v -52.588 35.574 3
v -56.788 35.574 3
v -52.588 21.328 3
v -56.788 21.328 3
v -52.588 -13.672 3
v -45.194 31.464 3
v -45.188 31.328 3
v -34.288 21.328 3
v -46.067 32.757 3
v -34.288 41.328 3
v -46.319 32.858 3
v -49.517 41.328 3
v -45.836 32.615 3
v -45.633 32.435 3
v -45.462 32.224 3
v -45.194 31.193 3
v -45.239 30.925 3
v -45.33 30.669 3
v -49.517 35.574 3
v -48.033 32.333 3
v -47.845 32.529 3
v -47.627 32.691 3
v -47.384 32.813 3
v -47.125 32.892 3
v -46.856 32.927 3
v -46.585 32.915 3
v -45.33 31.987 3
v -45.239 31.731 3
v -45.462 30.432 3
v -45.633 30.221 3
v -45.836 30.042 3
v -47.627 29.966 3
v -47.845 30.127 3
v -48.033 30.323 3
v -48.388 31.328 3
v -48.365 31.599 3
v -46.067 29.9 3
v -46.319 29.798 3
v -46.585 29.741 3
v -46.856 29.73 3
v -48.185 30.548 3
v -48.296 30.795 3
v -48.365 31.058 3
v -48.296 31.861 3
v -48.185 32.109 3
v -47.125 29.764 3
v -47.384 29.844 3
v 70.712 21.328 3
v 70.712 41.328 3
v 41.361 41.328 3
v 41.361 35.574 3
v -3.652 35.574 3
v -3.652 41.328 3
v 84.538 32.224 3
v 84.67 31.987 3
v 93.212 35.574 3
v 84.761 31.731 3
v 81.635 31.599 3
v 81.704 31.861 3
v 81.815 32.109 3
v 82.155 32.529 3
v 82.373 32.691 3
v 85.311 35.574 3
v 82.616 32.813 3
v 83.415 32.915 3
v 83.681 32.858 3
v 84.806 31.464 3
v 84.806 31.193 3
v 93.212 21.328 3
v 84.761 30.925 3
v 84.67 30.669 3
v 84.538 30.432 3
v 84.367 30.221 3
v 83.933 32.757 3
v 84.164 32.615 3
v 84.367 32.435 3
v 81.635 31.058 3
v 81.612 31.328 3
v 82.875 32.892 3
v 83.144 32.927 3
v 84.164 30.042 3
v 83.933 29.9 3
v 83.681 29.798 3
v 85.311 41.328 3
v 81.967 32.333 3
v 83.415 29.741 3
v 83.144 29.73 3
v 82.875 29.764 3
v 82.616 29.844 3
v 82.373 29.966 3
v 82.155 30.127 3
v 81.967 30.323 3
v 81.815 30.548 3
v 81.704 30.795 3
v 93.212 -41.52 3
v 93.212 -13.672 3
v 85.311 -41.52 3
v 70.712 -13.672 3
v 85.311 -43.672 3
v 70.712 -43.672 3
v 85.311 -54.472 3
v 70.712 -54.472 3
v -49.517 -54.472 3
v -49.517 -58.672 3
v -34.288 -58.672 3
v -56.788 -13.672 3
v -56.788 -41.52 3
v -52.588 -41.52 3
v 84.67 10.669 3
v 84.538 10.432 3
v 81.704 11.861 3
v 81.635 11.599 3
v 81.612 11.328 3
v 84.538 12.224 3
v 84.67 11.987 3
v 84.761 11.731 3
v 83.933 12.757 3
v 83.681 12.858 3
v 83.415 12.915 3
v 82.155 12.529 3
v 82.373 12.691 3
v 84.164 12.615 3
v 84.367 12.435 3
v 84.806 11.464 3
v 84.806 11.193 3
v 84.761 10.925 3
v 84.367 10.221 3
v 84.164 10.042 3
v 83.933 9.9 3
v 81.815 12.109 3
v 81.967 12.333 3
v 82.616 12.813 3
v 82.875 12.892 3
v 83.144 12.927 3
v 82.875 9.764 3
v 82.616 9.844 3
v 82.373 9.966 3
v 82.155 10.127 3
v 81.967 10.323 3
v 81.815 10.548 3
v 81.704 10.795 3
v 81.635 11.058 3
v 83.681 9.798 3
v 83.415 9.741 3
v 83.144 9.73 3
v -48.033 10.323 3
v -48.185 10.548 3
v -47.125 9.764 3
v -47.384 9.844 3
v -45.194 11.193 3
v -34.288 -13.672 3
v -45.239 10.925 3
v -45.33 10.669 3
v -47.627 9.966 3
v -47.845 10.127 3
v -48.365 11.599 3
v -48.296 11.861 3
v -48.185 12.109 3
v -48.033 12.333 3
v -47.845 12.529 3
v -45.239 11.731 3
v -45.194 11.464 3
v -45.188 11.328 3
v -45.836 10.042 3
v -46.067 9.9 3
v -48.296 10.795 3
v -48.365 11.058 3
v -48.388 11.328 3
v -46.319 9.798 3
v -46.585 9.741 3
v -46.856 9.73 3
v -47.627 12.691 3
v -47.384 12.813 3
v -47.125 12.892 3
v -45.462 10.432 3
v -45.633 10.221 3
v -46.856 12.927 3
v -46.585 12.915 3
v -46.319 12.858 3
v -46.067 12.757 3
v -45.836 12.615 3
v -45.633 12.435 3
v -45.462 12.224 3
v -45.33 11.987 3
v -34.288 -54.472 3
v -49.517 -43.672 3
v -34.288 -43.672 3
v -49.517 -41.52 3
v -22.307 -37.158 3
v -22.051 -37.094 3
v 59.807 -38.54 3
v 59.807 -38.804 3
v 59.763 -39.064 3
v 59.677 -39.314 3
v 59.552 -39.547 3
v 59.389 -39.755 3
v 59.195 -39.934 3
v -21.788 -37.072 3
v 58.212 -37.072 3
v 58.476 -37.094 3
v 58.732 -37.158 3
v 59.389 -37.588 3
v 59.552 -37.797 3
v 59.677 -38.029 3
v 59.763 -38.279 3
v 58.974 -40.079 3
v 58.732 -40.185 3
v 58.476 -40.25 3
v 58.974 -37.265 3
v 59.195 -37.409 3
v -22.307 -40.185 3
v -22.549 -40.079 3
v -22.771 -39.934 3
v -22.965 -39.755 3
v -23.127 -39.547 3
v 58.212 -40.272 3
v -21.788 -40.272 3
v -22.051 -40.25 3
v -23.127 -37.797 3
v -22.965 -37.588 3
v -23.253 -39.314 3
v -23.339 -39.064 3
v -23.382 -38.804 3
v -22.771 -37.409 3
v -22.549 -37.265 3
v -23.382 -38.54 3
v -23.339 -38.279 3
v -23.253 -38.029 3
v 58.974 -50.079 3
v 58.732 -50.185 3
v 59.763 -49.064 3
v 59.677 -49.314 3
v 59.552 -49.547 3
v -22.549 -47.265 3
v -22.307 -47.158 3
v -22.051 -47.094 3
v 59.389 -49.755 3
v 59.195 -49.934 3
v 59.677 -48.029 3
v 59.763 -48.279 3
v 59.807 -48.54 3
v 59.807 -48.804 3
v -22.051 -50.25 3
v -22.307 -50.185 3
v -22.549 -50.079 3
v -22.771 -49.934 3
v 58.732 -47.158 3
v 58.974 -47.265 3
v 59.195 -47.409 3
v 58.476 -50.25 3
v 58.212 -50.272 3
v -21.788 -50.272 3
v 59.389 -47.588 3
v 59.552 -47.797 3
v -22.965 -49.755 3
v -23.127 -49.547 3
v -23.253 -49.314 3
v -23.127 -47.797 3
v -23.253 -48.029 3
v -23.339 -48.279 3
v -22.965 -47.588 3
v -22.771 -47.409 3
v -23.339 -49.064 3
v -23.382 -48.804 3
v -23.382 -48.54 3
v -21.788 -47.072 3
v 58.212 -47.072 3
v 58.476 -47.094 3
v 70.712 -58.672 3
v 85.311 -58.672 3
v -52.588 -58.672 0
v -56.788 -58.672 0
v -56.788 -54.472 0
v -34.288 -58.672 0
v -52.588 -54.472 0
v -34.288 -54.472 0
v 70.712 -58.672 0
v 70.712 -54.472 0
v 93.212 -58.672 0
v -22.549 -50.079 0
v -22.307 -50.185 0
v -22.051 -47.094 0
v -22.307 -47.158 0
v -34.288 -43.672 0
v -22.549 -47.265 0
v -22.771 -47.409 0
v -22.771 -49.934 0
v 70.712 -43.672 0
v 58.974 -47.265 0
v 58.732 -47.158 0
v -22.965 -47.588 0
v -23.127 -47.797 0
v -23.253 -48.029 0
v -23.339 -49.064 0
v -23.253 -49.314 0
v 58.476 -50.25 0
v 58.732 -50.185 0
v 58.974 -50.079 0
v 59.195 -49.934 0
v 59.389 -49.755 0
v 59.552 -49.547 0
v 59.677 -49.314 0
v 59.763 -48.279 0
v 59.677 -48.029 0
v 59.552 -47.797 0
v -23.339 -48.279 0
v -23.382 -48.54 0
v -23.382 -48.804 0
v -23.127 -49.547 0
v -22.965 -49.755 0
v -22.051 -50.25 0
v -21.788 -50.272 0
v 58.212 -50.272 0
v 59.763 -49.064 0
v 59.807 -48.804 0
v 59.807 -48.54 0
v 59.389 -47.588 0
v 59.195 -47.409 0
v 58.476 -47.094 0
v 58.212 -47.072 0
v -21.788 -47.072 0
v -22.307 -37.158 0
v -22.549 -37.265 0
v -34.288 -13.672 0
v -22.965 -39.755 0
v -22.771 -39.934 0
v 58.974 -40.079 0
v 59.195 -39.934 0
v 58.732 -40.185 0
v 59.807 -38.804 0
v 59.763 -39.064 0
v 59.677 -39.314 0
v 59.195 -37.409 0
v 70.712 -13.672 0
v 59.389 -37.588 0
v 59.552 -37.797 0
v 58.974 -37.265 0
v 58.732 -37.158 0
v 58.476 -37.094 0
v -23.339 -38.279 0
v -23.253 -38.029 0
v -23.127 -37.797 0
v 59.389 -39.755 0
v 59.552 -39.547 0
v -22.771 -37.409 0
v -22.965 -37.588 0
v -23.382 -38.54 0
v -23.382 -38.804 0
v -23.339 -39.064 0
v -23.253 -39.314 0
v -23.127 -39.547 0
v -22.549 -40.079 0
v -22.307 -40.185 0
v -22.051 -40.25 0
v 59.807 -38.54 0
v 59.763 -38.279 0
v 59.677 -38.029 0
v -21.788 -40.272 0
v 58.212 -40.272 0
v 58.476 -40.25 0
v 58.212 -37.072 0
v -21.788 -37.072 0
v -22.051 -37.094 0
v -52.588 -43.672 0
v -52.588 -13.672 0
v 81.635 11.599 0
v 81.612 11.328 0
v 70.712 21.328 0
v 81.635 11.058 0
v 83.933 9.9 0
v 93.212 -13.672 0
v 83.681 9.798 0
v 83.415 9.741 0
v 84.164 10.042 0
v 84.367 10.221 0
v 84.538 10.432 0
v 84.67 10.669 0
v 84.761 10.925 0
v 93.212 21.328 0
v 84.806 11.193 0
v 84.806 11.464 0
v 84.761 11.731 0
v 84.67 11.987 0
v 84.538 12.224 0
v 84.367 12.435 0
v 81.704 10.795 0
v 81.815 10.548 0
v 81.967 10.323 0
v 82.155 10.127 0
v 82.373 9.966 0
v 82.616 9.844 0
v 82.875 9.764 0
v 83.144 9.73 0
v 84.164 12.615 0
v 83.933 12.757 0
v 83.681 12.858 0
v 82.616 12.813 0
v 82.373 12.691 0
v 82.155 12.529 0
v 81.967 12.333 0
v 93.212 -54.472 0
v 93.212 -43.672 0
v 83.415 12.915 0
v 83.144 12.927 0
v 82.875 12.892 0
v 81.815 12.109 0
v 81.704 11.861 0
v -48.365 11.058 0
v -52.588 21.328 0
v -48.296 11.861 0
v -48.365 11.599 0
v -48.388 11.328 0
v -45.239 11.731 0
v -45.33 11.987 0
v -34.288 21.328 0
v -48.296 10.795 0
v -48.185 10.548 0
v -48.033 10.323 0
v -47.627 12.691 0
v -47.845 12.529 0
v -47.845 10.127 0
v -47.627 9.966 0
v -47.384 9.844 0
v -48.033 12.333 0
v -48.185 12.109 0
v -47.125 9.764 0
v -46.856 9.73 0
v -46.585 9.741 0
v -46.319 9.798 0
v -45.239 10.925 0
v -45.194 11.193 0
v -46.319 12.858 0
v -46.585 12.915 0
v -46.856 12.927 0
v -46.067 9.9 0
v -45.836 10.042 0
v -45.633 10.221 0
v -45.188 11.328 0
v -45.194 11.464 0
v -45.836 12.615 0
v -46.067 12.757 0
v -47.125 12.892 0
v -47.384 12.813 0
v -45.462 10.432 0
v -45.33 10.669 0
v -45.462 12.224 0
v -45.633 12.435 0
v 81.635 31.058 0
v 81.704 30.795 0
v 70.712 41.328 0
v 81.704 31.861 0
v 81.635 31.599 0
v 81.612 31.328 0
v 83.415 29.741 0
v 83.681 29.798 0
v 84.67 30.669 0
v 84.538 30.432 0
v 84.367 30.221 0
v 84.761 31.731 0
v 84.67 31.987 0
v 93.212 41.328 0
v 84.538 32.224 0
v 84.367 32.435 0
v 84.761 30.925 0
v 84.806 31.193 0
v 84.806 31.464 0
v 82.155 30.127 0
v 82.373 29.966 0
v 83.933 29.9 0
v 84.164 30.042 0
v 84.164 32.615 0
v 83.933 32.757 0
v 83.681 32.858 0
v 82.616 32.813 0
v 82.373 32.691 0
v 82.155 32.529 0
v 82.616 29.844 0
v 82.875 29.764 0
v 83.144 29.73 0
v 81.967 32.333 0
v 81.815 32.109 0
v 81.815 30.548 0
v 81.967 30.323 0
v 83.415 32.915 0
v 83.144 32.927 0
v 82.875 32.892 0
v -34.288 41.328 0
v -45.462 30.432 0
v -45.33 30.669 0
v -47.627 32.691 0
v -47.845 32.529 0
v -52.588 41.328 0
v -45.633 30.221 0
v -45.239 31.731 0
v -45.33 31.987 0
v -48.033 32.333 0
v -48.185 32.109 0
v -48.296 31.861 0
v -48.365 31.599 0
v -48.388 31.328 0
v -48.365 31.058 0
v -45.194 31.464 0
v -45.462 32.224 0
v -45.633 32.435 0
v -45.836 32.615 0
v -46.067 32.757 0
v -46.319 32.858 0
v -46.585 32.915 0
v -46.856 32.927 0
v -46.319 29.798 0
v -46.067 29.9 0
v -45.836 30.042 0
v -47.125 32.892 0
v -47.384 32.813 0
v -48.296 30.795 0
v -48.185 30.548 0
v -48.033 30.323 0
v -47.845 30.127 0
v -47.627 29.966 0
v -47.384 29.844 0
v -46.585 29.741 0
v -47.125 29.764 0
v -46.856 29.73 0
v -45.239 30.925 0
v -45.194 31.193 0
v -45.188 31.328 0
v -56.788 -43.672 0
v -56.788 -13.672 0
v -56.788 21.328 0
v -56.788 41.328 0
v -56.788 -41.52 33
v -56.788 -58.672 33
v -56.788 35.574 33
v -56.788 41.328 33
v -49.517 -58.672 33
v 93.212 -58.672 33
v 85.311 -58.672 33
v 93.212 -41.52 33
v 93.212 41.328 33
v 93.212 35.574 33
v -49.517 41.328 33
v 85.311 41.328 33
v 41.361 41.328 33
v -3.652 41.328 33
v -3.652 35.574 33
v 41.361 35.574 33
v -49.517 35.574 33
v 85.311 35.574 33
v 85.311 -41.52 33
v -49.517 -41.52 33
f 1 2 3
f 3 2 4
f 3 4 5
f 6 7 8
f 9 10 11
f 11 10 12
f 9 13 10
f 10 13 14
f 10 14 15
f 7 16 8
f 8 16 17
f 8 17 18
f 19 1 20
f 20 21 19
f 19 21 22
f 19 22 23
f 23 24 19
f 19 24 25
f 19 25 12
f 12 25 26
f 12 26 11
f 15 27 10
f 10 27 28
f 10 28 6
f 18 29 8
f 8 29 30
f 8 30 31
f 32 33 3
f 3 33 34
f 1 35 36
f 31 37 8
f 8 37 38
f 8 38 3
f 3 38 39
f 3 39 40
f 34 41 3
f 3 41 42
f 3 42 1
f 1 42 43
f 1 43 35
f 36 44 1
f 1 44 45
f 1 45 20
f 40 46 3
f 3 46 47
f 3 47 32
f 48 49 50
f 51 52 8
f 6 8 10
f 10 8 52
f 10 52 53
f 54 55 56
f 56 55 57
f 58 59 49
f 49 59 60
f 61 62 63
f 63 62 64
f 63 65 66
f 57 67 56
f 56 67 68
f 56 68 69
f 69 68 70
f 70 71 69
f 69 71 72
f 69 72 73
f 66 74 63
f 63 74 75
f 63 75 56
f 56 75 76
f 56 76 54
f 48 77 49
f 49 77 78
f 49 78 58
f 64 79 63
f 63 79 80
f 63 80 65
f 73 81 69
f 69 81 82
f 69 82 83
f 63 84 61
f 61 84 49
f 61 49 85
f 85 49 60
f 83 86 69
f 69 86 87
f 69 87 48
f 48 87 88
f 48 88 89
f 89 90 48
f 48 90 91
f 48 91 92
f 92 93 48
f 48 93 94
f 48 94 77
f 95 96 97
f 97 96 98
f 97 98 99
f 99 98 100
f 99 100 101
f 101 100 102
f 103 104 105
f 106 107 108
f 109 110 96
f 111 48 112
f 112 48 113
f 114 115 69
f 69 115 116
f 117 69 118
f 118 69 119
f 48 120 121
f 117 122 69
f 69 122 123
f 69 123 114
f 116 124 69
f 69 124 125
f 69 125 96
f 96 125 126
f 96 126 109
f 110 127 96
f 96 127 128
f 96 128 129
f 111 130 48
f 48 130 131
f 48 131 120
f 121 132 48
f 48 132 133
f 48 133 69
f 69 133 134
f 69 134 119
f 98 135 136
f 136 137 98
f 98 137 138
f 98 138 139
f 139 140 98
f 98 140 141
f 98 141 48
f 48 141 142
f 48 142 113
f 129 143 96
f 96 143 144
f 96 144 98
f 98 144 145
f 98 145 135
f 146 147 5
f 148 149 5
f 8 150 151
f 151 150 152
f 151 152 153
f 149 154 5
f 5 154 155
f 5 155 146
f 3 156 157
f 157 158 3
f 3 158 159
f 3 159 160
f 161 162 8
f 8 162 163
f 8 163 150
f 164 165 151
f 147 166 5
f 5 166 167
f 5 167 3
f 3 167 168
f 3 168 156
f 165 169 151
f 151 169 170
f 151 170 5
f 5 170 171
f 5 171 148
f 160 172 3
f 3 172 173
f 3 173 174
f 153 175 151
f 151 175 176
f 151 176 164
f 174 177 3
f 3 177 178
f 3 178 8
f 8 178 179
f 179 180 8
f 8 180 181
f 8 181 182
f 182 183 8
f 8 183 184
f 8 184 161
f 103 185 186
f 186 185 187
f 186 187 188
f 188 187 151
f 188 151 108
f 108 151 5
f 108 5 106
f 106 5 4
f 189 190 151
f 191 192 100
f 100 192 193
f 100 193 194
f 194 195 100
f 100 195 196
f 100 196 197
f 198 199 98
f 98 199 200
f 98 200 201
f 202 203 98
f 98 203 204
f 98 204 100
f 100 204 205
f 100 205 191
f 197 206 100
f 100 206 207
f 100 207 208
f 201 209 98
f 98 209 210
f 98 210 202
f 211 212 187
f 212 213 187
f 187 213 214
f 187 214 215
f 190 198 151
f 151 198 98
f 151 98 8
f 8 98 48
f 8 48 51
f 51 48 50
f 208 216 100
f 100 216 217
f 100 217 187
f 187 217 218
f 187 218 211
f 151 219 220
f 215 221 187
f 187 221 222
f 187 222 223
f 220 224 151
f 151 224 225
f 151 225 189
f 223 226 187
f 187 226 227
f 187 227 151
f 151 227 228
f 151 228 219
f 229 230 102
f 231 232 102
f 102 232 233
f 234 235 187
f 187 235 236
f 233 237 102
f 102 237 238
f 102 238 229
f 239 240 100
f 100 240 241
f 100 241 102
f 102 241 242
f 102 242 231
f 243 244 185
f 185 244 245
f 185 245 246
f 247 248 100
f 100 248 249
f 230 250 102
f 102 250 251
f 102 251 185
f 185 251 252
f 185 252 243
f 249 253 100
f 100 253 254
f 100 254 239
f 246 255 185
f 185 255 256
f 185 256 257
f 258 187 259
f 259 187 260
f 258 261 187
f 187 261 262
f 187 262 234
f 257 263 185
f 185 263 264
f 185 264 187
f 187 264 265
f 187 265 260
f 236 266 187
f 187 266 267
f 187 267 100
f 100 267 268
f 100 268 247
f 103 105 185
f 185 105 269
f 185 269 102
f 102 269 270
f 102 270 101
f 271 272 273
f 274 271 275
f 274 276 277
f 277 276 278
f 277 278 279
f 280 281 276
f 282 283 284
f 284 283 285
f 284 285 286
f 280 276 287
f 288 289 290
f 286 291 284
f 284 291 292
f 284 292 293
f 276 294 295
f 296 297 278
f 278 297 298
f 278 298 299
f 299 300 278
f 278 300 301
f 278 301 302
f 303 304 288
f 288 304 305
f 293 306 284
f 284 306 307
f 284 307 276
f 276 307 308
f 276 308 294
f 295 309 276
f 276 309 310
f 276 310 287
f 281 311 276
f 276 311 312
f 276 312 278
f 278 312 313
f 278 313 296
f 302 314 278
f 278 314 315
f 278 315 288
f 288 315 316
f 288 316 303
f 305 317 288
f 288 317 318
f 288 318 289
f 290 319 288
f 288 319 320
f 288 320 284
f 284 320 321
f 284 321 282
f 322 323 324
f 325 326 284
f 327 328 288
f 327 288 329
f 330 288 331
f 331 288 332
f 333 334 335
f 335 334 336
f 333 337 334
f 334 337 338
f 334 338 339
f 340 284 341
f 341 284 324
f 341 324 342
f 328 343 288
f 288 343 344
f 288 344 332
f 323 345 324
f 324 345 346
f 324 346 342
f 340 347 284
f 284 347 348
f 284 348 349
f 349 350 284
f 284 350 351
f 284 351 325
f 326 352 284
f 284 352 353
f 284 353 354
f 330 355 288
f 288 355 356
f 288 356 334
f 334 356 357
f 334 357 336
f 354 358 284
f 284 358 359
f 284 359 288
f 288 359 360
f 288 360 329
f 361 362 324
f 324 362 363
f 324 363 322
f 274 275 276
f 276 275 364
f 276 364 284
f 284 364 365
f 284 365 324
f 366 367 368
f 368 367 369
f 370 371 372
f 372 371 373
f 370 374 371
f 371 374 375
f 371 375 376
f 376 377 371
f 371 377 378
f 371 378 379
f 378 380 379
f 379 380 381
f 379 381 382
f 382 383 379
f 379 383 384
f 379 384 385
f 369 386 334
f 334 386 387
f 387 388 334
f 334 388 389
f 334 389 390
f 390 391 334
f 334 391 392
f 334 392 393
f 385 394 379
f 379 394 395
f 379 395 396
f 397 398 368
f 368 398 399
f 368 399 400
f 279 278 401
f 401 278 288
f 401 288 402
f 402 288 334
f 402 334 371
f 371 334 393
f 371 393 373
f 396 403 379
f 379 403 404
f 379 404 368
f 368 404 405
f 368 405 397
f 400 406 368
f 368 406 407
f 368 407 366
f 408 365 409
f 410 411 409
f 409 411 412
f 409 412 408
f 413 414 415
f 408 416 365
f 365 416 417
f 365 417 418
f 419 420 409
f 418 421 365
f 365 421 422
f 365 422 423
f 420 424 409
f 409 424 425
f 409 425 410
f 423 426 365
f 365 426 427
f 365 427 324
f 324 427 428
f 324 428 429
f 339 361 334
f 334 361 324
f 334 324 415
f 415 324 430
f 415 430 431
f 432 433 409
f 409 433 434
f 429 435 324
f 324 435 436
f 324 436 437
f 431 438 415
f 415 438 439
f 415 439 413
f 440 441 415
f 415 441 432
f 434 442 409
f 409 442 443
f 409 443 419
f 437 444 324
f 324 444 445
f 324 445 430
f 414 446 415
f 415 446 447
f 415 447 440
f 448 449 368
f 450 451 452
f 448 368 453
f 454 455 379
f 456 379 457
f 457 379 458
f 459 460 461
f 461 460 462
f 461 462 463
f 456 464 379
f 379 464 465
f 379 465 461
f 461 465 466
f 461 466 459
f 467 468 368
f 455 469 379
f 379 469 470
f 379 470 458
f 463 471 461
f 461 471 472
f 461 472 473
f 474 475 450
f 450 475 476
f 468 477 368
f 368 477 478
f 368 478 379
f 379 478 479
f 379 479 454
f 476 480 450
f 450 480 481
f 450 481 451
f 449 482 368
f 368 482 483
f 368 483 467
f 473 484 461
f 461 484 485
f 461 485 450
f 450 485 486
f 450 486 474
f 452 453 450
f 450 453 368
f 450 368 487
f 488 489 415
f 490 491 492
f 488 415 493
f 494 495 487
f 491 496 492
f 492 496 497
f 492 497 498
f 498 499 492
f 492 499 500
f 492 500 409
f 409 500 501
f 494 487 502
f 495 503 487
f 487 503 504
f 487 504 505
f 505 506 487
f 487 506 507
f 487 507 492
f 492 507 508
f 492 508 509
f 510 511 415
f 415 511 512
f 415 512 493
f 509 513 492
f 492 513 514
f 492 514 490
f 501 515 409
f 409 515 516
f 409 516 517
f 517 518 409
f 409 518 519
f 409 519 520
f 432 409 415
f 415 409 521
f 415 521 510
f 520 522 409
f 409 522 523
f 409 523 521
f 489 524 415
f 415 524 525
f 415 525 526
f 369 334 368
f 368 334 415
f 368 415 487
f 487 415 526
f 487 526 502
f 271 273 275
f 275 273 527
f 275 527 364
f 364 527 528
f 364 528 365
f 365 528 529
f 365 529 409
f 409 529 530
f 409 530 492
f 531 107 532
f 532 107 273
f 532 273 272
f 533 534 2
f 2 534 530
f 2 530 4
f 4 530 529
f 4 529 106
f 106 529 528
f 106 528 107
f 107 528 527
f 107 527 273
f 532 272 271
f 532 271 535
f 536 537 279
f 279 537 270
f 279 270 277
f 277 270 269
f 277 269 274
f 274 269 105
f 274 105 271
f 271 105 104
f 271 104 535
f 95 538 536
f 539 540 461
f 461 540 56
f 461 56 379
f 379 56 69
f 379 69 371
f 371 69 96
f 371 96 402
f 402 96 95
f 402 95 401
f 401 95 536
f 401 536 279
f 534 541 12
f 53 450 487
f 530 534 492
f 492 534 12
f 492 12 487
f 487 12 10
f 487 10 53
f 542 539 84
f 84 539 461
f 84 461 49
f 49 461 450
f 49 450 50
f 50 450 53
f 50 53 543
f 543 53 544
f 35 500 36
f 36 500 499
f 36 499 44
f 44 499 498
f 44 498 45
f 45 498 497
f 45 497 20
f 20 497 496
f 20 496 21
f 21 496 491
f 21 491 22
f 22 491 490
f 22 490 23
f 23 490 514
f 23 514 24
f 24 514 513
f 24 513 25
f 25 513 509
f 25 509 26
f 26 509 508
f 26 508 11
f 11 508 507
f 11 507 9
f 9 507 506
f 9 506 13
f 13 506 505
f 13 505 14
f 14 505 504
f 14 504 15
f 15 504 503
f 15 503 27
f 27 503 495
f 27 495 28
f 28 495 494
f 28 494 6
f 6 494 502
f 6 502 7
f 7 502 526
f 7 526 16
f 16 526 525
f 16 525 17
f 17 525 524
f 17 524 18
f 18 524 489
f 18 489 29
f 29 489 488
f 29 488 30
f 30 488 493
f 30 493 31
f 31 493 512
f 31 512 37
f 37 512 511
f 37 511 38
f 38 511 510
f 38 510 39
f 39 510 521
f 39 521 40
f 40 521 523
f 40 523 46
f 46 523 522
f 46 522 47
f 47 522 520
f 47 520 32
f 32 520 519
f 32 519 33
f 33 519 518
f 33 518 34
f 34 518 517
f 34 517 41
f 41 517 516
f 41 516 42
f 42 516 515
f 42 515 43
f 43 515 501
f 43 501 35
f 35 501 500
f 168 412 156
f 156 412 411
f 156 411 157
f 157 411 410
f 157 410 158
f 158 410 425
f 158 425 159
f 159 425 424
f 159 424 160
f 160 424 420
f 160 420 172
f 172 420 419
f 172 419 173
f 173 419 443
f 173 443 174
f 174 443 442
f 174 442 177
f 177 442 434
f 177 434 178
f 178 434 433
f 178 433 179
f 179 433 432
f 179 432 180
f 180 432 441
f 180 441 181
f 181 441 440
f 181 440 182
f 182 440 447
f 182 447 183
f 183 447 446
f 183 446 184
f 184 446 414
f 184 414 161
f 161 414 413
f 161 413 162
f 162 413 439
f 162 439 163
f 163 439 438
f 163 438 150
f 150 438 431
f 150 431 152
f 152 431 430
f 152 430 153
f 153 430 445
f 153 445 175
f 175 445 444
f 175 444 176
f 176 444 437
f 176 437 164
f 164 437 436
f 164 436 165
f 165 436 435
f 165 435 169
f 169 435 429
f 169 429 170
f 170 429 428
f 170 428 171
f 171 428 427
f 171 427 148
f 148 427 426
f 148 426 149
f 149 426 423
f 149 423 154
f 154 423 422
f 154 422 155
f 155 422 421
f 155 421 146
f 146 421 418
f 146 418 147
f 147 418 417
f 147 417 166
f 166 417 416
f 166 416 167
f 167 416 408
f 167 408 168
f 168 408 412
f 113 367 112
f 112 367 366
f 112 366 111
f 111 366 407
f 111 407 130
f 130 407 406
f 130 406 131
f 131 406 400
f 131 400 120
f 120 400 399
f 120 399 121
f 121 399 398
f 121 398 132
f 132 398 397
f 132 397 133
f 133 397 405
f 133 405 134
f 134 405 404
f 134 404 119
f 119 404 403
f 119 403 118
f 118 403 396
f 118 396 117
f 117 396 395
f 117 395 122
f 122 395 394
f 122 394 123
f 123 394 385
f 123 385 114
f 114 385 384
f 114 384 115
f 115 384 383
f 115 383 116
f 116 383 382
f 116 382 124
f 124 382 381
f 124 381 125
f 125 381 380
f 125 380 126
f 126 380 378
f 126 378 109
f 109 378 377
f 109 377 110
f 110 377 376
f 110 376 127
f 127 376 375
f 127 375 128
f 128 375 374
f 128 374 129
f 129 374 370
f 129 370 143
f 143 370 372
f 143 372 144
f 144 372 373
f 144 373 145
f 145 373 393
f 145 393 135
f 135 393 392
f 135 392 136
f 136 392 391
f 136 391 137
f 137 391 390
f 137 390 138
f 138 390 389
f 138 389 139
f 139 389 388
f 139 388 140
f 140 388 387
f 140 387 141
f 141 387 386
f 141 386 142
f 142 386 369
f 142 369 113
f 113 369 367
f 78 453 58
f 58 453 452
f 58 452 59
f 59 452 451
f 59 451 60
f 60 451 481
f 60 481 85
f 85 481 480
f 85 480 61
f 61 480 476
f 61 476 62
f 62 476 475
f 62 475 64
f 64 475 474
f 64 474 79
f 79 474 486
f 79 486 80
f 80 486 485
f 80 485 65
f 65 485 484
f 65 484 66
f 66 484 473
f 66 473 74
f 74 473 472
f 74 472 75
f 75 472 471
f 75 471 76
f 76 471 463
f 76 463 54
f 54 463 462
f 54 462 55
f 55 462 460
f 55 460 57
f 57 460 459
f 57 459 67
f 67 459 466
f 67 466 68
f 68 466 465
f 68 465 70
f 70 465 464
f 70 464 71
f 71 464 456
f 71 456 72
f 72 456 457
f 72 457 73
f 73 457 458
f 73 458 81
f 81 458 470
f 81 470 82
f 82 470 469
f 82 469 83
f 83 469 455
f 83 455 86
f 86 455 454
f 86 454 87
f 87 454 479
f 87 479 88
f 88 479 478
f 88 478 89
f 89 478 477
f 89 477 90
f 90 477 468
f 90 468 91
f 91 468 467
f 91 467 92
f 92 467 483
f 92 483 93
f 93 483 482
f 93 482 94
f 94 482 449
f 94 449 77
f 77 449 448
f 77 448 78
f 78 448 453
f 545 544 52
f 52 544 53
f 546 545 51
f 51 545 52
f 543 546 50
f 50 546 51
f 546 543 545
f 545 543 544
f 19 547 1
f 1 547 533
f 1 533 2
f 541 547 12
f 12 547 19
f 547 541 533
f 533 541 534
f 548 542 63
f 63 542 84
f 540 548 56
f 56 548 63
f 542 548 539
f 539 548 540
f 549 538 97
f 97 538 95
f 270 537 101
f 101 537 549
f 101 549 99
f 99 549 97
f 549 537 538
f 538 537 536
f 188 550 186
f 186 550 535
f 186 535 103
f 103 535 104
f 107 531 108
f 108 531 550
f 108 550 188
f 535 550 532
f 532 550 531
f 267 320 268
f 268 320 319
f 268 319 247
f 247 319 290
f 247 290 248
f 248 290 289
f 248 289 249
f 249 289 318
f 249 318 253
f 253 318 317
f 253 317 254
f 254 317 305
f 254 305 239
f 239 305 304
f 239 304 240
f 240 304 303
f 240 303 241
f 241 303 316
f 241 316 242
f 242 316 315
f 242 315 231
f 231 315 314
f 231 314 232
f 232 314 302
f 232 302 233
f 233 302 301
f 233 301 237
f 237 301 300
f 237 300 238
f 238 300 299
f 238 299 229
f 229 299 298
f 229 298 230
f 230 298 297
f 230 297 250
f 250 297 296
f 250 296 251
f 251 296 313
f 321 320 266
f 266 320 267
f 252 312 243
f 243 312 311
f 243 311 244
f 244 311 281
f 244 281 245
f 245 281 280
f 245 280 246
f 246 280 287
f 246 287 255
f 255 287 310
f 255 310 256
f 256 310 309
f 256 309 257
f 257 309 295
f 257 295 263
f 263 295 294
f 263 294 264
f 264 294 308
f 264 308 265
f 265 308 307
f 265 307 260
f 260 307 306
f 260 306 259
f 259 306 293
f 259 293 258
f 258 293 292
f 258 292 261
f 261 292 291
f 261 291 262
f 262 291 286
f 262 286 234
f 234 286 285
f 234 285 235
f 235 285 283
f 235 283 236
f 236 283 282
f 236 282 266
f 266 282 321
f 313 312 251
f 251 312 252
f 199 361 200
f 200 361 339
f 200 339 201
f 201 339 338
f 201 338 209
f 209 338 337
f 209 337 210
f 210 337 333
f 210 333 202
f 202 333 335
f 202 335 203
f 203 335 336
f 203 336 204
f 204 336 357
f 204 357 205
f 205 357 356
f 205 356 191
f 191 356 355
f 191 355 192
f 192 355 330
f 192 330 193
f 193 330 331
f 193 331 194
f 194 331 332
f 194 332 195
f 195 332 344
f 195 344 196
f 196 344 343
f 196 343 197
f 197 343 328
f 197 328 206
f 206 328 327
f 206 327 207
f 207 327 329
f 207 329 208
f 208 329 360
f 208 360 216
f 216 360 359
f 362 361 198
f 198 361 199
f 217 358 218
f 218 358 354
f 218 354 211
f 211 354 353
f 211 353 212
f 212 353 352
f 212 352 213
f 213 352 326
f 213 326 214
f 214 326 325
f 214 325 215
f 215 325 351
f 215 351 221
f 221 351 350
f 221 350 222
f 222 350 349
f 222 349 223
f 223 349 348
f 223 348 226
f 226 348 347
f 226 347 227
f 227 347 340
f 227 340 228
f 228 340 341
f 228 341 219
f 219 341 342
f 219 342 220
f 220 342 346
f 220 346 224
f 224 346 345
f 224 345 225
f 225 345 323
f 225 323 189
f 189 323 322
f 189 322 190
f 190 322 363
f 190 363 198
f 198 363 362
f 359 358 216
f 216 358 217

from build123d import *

# Parameters (mm, degrees)
SKETCH_1_W          = 150
SKETCH_1_H          = 100
SKETCH_1_R          = 1.6
EXTRUDE_1_DEPTH     = 3
SKETCH_2_W          = 45.012904103
SKETCH_2_H          = 5.754361308
SKETCH_2_W_2        = 7.270480745
SKETCH_2_W_3        = 7.901217153
SKETCH_2_H_2        = 17.152026815
EXTRUDE_2_DEPTH     = 30
CUT_EXTRUDE_1_DEPTH = 5


with BuildPart() as part:
    # 草图1 → 凸台-拉伸1 (new body)
    with BuildSketch(Plane.XY):
        with Locations((18.212237094, -8.671684116)):
            Rectangle(SKETCH_1_W, SKETCH_1_H)
        with Locations((-46.787762906, 31.328315884)):
            Circle(SKETCH_1_R, mode=Mode.SUBTRACT)
        with Locations((-46.787762906, 11.328315884)):
            Circle(SKETCH_1_R, mode=Mode.SUBTRACT)
        with Locations((83.212237094, 11.328315884)):
            Circle(SKETCH_1_R, mode=Mode.SUBTRACT)
        with Locations((83.212237094, 31.328315884)):
            Circle(SKETCH_1_R, mode=Mode.SUBTRACT)
    extrude(amount=EXTRUDE_1_DEPTH)

    # 草图2 → 凸台-拉伸2 (add)
    with BuildSketch(Plane.XY.offset(3)):
        with Locations((18.854591116, 38.45113523)):
            Rectangle(SKETCH_2_W, SKETCH_2_H)
        with Locations((-53.152522534, 38.45113523)):
            Rectangle(SKETCH_2_W_2, SKETCH_2_H)
        with Locations((89.261628518, 38.45113523)):
            Rectangle(SKETCH_2_W_3, SKETCH_2_H)
        with Locations((89.261628518, -50.095670709)):
            Rectangle(SKETCH_2_W_3, SKETCH_2_H_2)
        with Locations((-53.152522534, -50.095670709)):
            Rectangle(SKETCH_2_W_2, SKETCH_2_H_2)
    extrude(amount=EXTRUDE_2_DEPTH)

    # 草图3 → 切除-拉伸1 (cut)
    with BuildSketch(Plane(origin=(0, 0, 0), x_dir=(-1, 0, 0), z_dir=(0, 0, -1))):
        with BuildLine():
            Line((-58.212237094, -37.071684116), (21.787762906, -37.071684116))
            ThreePointArc((21.787762906, -37.071684116), (23.387762906, -38.671684116), (21.787762906, -40.271684116))
            Line((21.787762906, -40.271684116), (-58.212237094, -40.271684116))
            ThreePointArc((-58.212237094, -40.271684116), (-59.812237094, -38.671684116), (-58.212237094, -37.071684116))
        make_face()
        with BuildLine():
            Line((-58.212237094, -47.071684116), (21.787762906, -47.071684116))
            ThreePointArc((21.787762906, -47.071684116), (23.387762906, -48.671684116), (21.787762906, -50.271684116))
            Line((21.787762906, -50.271684116), (-58.212237094, -50.271684116))
            ThreePointArc((-58.212237094, -50.271684116), (-59.812237094, -48.671684116), (-58.212237094, -47.071684116))
        make_face()
    extrude(amount=-CUT_EXTRUDE_1_DEPTH, mode=Mode.SUBTRACT)


solid = part.part
